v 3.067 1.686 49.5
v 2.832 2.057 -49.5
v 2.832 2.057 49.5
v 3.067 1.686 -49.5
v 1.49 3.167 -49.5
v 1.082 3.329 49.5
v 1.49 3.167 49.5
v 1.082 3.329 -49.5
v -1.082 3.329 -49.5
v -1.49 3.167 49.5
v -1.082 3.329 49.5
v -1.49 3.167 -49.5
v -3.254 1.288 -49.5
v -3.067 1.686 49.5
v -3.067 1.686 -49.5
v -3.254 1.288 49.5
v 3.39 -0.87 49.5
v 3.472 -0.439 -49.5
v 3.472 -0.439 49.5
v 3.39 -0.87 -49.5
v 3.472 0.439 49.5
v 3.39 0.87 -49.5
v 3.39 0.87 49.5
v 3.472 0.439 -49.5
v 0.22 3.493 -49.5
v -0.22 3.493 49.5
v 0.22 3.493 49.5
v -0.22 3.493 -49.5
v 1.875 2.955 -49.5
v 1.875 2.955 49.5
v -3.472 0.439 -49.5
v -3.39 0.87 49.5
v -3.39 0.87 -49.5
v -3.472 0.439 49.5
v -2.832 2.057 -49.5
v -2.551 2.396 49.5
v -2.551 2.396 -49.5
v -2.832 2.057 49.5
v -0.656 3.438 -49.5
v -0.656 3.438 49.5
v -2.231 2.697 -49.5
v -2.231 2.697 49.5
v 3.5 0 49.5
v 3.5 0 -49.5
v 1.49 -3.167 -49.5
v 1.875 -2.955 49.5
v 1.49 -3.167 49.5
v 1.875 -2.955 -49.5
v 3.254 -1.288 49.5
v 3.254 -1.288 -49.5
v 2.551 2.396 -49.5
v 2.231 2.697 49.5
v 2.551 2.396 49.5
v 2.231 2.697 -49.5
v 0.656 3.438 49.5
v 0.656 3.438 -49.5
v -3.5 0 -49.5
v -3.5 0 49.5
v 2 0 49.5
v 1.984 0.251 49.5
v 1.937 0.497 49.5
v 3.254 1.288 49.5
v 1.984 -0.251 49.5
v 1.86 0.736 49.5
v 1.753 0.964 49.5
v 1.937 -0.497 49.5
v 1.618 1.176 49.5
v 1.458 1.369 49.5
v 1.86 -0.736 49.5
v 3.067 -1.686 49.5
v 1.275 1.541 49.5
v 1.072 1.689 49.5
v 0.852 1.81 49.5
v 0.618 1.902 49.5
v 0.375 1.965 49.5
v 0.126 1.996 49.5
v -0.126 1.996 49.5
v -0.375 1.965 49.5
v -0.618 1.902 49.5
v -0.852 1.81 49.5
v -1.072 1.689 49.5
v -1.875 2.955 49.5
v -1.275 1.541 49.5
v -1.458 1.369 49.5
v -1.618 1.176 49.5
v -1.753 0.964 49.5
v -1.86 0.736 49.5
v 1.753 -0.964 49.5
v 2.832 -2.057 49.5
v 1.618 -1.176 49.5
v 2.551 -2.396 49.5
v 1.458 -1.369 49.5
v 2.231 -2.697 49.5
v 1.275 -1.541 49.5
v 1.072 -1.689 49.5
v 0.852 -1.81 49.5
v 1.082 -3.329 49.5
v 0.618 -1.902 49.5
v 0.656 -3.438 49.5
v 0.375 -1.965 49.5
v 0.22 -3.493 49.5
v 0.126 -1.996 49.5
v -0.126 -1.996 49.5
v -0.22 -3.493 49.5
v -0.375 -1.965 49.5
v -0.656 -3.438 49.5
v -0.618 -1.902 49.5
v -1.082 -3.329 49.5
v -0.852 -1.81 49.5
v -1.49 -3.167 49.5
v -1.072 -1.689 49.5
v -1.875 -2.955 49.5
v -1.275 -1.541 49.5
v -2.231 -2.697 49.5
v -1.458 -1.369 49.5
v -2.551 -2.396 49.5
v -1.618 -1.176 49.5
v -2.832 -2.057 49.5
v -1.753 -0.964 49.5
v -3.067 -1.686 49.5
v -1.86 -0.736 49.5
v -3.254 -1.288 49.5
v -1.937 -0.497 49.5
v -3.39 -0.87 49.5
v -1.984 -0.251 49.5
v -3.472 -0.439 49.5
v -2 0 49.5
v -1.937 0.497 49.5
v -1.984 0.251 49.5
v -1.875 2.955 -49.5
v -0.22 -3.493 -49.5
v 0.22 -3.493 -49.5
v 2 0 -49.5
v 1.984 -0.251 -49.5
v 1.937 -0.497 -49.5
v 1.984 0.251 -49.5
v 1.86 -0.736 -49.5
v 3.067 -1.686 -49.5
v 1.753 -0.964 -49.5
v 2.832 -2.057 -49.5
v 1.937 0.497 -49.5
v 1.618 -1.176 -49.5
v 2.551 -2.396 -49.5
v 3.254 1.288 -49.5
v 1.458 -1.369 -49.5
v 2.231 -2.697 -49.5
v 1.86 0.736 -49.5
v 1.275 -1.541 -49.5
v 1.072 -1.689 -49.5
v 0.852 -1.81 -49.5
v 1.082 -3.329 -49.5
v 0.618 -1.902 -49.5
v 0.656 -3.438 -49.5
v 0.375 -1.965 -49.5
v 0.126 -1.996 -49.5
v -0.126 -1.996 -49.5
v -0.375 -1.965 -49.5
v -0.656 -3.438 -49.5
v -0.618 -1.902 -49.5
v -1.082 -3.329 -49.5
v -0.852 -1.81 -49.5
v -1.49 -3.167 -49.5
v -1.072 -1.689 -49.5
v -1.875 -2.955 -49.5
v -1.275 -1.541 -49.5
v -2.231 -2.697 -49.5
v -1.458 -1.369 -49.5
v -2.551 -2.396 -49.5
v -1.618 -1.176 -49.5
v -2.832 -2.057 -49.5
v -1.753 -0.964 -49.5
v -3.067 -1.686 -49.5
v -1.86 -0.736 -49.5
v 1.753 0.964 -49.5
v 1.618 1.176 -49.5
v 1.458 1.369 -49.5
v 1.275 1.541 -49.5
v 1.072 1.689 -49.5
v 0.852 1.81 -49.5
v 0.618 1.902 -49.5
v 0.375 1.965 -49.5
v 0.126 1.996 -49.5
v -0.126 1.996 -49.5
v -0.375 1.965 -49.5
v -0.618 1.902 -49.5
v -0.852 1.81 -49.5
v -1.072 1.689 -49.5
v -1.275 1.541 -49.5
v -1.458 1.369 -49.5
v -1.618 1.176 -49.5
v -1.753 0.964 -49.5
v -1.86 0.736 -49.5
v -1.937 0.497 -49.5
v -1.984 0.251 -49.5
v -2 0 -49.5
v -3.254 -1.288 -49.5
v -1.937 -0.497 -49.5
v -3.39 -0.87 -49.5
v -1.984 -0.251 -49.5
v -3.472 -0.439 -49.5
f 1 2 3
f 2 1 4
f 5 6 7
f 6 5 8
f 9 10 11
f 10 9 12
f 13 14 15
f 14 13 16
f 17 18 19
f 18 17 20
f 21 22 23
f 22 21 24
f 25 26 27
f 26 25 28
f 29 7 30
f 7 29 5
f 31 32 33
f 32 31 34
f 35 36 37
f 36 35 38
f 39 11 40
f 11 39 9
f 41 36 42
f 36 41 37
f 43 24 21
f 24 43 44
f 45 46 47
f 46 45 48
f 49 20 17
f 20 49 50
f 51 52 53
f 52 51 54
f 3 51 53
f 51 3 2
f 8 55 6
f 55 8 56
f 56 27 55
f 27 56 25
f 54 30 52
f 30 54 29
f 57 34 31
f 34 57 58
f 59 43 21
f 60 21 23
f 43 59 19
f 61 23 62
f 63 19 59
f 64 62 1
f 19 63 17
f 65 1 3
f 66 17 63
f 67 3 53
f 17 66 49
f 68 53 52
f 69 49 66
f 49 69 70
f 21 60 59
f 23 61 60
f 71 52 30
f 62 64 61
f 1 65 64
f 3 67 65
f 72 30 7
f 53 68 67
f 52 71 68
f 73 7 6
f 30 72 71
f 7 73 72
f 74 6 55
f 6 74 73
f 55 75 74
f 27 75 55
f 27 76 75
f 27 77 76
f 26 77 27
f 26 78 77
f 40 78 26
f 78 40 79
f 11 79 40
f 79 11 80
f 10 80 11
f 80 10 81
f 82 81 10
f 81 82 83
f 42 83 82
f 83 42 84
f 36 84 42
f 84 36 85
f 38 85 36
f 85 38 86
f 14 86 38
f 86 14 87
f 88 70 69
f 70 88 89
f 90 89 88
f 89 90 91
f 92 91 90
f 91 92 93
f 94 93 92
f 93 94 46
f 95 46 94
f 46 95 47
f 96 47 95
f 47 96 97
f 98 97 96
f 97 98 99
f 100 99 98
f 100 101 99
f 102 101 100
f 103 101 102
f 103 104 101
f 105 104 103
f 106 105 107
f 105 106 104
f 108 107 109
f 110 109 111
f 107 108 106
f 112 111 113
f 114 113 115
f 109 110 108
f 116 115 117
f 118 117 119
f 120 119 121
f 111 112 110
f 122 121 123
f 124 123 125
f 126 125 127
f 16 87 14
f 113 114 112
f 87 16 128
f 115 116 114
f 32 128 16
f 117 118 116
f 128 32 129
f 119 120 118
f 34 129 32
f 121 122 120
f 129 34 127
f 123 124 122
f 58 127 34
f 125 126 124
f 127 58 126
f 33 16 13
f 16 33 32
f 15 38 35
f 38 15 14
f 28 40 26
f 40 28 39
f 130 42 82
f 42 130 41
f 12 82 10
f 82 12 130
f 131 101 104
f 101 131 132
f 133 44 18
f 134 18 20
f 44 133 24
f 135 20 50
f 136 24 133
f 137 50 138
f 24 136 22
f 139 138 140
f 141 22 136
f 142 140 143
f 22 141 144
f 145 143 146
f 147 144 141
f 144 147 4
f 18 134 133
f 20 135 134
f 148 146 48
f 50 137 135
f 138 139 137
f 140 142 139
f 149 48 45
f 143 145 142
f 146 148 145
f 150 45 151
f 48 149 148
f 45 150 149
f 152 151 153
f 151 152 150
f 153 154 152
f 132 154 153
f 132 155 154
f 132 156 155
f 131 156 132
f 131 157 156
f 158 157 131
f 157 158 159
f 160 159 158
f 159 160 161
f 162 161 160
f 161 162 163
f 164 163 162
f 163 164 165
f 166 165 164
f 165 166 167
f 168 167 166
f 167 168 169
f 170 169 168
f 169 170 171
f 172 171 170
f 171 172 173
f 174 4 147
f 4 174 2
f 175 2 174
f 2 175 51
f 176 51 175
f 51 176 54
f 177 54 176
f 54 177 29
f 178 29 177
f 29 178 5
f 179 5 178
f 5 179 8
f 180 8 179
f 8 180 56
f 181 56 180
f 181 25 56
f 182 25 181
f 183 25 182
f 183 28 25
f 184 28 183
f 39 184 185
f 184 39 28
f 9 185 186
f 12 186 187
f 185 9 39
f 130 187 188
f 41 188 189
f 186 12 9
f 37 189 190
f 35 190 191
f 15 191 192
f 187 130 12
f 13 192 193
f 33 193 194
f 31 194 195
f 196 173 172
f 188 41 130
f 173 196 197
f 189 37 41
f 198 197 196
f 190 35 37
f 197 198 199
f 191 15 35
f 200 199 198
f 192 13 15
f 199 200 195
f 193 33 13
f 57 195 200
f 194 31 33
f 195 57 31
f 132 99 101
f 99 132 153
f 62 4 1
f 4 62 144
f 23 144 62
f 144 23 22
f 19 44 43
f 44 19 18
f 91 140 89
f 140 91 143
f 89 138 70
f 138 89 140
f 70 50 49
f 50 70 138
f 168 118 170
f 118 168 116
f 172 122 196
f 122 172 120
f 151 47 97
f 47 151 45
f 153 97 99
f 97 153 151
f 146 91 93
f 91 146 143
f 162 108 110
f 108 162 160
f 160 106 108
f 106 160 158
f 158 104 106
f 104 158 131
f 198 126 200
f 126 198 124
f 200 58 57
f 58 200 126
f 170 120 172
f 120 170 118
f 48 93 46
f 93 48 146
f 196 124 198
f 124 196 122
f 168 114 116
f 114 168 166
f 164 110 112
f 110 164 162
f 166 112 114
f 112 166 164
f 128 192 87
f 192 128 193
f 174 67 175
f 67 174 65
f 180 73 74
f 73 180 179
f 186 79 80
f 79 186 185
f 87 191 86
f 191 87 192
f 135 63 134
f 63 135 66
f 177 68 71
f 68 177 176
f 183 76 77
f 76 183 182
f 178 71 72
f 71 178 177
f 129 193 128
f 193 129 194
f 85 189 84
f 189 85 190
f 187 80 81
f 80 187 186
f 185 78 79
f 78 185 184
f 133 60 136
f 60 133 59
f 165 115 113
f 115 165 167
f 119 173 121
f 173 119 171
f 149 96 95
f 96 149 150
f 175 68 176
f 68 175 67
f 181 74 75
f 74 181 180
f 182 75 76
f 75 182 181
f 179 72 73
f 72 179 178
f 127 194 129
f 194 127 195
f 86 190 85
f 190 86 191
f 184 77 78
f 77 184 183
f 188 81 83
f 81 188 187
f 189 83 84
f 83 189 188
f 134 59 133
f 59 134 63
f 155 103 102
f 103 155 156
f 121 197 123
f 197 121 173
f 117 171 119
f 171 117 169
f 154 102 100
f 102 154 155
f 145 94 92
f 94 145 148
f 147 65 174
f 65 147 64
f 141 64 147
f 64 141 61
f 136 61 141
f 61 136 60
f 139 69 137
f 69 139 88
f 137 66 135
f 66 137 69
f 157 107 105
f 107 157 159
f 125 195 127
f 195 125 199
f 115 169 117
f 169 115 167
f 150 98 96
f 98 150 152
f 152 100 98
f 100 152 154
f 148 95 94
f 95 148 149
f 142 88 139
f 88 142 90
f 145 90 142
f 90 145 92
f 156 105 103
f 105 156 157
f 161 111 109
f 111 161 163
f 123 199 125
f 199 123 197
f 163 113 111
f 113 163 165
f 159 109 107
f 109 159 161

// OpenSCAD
$fn = 50;


difference() {
	union() {
		translate(v = [0, 0, -49.5000000000]) {
			cylinder(h = 99, r = 3.5000000000);
		}
	}
	union() {
		translate(v = [0, 0, -100.0000000000]) {
			cylinder(h = 200, r = 2);
		}
	}
}
